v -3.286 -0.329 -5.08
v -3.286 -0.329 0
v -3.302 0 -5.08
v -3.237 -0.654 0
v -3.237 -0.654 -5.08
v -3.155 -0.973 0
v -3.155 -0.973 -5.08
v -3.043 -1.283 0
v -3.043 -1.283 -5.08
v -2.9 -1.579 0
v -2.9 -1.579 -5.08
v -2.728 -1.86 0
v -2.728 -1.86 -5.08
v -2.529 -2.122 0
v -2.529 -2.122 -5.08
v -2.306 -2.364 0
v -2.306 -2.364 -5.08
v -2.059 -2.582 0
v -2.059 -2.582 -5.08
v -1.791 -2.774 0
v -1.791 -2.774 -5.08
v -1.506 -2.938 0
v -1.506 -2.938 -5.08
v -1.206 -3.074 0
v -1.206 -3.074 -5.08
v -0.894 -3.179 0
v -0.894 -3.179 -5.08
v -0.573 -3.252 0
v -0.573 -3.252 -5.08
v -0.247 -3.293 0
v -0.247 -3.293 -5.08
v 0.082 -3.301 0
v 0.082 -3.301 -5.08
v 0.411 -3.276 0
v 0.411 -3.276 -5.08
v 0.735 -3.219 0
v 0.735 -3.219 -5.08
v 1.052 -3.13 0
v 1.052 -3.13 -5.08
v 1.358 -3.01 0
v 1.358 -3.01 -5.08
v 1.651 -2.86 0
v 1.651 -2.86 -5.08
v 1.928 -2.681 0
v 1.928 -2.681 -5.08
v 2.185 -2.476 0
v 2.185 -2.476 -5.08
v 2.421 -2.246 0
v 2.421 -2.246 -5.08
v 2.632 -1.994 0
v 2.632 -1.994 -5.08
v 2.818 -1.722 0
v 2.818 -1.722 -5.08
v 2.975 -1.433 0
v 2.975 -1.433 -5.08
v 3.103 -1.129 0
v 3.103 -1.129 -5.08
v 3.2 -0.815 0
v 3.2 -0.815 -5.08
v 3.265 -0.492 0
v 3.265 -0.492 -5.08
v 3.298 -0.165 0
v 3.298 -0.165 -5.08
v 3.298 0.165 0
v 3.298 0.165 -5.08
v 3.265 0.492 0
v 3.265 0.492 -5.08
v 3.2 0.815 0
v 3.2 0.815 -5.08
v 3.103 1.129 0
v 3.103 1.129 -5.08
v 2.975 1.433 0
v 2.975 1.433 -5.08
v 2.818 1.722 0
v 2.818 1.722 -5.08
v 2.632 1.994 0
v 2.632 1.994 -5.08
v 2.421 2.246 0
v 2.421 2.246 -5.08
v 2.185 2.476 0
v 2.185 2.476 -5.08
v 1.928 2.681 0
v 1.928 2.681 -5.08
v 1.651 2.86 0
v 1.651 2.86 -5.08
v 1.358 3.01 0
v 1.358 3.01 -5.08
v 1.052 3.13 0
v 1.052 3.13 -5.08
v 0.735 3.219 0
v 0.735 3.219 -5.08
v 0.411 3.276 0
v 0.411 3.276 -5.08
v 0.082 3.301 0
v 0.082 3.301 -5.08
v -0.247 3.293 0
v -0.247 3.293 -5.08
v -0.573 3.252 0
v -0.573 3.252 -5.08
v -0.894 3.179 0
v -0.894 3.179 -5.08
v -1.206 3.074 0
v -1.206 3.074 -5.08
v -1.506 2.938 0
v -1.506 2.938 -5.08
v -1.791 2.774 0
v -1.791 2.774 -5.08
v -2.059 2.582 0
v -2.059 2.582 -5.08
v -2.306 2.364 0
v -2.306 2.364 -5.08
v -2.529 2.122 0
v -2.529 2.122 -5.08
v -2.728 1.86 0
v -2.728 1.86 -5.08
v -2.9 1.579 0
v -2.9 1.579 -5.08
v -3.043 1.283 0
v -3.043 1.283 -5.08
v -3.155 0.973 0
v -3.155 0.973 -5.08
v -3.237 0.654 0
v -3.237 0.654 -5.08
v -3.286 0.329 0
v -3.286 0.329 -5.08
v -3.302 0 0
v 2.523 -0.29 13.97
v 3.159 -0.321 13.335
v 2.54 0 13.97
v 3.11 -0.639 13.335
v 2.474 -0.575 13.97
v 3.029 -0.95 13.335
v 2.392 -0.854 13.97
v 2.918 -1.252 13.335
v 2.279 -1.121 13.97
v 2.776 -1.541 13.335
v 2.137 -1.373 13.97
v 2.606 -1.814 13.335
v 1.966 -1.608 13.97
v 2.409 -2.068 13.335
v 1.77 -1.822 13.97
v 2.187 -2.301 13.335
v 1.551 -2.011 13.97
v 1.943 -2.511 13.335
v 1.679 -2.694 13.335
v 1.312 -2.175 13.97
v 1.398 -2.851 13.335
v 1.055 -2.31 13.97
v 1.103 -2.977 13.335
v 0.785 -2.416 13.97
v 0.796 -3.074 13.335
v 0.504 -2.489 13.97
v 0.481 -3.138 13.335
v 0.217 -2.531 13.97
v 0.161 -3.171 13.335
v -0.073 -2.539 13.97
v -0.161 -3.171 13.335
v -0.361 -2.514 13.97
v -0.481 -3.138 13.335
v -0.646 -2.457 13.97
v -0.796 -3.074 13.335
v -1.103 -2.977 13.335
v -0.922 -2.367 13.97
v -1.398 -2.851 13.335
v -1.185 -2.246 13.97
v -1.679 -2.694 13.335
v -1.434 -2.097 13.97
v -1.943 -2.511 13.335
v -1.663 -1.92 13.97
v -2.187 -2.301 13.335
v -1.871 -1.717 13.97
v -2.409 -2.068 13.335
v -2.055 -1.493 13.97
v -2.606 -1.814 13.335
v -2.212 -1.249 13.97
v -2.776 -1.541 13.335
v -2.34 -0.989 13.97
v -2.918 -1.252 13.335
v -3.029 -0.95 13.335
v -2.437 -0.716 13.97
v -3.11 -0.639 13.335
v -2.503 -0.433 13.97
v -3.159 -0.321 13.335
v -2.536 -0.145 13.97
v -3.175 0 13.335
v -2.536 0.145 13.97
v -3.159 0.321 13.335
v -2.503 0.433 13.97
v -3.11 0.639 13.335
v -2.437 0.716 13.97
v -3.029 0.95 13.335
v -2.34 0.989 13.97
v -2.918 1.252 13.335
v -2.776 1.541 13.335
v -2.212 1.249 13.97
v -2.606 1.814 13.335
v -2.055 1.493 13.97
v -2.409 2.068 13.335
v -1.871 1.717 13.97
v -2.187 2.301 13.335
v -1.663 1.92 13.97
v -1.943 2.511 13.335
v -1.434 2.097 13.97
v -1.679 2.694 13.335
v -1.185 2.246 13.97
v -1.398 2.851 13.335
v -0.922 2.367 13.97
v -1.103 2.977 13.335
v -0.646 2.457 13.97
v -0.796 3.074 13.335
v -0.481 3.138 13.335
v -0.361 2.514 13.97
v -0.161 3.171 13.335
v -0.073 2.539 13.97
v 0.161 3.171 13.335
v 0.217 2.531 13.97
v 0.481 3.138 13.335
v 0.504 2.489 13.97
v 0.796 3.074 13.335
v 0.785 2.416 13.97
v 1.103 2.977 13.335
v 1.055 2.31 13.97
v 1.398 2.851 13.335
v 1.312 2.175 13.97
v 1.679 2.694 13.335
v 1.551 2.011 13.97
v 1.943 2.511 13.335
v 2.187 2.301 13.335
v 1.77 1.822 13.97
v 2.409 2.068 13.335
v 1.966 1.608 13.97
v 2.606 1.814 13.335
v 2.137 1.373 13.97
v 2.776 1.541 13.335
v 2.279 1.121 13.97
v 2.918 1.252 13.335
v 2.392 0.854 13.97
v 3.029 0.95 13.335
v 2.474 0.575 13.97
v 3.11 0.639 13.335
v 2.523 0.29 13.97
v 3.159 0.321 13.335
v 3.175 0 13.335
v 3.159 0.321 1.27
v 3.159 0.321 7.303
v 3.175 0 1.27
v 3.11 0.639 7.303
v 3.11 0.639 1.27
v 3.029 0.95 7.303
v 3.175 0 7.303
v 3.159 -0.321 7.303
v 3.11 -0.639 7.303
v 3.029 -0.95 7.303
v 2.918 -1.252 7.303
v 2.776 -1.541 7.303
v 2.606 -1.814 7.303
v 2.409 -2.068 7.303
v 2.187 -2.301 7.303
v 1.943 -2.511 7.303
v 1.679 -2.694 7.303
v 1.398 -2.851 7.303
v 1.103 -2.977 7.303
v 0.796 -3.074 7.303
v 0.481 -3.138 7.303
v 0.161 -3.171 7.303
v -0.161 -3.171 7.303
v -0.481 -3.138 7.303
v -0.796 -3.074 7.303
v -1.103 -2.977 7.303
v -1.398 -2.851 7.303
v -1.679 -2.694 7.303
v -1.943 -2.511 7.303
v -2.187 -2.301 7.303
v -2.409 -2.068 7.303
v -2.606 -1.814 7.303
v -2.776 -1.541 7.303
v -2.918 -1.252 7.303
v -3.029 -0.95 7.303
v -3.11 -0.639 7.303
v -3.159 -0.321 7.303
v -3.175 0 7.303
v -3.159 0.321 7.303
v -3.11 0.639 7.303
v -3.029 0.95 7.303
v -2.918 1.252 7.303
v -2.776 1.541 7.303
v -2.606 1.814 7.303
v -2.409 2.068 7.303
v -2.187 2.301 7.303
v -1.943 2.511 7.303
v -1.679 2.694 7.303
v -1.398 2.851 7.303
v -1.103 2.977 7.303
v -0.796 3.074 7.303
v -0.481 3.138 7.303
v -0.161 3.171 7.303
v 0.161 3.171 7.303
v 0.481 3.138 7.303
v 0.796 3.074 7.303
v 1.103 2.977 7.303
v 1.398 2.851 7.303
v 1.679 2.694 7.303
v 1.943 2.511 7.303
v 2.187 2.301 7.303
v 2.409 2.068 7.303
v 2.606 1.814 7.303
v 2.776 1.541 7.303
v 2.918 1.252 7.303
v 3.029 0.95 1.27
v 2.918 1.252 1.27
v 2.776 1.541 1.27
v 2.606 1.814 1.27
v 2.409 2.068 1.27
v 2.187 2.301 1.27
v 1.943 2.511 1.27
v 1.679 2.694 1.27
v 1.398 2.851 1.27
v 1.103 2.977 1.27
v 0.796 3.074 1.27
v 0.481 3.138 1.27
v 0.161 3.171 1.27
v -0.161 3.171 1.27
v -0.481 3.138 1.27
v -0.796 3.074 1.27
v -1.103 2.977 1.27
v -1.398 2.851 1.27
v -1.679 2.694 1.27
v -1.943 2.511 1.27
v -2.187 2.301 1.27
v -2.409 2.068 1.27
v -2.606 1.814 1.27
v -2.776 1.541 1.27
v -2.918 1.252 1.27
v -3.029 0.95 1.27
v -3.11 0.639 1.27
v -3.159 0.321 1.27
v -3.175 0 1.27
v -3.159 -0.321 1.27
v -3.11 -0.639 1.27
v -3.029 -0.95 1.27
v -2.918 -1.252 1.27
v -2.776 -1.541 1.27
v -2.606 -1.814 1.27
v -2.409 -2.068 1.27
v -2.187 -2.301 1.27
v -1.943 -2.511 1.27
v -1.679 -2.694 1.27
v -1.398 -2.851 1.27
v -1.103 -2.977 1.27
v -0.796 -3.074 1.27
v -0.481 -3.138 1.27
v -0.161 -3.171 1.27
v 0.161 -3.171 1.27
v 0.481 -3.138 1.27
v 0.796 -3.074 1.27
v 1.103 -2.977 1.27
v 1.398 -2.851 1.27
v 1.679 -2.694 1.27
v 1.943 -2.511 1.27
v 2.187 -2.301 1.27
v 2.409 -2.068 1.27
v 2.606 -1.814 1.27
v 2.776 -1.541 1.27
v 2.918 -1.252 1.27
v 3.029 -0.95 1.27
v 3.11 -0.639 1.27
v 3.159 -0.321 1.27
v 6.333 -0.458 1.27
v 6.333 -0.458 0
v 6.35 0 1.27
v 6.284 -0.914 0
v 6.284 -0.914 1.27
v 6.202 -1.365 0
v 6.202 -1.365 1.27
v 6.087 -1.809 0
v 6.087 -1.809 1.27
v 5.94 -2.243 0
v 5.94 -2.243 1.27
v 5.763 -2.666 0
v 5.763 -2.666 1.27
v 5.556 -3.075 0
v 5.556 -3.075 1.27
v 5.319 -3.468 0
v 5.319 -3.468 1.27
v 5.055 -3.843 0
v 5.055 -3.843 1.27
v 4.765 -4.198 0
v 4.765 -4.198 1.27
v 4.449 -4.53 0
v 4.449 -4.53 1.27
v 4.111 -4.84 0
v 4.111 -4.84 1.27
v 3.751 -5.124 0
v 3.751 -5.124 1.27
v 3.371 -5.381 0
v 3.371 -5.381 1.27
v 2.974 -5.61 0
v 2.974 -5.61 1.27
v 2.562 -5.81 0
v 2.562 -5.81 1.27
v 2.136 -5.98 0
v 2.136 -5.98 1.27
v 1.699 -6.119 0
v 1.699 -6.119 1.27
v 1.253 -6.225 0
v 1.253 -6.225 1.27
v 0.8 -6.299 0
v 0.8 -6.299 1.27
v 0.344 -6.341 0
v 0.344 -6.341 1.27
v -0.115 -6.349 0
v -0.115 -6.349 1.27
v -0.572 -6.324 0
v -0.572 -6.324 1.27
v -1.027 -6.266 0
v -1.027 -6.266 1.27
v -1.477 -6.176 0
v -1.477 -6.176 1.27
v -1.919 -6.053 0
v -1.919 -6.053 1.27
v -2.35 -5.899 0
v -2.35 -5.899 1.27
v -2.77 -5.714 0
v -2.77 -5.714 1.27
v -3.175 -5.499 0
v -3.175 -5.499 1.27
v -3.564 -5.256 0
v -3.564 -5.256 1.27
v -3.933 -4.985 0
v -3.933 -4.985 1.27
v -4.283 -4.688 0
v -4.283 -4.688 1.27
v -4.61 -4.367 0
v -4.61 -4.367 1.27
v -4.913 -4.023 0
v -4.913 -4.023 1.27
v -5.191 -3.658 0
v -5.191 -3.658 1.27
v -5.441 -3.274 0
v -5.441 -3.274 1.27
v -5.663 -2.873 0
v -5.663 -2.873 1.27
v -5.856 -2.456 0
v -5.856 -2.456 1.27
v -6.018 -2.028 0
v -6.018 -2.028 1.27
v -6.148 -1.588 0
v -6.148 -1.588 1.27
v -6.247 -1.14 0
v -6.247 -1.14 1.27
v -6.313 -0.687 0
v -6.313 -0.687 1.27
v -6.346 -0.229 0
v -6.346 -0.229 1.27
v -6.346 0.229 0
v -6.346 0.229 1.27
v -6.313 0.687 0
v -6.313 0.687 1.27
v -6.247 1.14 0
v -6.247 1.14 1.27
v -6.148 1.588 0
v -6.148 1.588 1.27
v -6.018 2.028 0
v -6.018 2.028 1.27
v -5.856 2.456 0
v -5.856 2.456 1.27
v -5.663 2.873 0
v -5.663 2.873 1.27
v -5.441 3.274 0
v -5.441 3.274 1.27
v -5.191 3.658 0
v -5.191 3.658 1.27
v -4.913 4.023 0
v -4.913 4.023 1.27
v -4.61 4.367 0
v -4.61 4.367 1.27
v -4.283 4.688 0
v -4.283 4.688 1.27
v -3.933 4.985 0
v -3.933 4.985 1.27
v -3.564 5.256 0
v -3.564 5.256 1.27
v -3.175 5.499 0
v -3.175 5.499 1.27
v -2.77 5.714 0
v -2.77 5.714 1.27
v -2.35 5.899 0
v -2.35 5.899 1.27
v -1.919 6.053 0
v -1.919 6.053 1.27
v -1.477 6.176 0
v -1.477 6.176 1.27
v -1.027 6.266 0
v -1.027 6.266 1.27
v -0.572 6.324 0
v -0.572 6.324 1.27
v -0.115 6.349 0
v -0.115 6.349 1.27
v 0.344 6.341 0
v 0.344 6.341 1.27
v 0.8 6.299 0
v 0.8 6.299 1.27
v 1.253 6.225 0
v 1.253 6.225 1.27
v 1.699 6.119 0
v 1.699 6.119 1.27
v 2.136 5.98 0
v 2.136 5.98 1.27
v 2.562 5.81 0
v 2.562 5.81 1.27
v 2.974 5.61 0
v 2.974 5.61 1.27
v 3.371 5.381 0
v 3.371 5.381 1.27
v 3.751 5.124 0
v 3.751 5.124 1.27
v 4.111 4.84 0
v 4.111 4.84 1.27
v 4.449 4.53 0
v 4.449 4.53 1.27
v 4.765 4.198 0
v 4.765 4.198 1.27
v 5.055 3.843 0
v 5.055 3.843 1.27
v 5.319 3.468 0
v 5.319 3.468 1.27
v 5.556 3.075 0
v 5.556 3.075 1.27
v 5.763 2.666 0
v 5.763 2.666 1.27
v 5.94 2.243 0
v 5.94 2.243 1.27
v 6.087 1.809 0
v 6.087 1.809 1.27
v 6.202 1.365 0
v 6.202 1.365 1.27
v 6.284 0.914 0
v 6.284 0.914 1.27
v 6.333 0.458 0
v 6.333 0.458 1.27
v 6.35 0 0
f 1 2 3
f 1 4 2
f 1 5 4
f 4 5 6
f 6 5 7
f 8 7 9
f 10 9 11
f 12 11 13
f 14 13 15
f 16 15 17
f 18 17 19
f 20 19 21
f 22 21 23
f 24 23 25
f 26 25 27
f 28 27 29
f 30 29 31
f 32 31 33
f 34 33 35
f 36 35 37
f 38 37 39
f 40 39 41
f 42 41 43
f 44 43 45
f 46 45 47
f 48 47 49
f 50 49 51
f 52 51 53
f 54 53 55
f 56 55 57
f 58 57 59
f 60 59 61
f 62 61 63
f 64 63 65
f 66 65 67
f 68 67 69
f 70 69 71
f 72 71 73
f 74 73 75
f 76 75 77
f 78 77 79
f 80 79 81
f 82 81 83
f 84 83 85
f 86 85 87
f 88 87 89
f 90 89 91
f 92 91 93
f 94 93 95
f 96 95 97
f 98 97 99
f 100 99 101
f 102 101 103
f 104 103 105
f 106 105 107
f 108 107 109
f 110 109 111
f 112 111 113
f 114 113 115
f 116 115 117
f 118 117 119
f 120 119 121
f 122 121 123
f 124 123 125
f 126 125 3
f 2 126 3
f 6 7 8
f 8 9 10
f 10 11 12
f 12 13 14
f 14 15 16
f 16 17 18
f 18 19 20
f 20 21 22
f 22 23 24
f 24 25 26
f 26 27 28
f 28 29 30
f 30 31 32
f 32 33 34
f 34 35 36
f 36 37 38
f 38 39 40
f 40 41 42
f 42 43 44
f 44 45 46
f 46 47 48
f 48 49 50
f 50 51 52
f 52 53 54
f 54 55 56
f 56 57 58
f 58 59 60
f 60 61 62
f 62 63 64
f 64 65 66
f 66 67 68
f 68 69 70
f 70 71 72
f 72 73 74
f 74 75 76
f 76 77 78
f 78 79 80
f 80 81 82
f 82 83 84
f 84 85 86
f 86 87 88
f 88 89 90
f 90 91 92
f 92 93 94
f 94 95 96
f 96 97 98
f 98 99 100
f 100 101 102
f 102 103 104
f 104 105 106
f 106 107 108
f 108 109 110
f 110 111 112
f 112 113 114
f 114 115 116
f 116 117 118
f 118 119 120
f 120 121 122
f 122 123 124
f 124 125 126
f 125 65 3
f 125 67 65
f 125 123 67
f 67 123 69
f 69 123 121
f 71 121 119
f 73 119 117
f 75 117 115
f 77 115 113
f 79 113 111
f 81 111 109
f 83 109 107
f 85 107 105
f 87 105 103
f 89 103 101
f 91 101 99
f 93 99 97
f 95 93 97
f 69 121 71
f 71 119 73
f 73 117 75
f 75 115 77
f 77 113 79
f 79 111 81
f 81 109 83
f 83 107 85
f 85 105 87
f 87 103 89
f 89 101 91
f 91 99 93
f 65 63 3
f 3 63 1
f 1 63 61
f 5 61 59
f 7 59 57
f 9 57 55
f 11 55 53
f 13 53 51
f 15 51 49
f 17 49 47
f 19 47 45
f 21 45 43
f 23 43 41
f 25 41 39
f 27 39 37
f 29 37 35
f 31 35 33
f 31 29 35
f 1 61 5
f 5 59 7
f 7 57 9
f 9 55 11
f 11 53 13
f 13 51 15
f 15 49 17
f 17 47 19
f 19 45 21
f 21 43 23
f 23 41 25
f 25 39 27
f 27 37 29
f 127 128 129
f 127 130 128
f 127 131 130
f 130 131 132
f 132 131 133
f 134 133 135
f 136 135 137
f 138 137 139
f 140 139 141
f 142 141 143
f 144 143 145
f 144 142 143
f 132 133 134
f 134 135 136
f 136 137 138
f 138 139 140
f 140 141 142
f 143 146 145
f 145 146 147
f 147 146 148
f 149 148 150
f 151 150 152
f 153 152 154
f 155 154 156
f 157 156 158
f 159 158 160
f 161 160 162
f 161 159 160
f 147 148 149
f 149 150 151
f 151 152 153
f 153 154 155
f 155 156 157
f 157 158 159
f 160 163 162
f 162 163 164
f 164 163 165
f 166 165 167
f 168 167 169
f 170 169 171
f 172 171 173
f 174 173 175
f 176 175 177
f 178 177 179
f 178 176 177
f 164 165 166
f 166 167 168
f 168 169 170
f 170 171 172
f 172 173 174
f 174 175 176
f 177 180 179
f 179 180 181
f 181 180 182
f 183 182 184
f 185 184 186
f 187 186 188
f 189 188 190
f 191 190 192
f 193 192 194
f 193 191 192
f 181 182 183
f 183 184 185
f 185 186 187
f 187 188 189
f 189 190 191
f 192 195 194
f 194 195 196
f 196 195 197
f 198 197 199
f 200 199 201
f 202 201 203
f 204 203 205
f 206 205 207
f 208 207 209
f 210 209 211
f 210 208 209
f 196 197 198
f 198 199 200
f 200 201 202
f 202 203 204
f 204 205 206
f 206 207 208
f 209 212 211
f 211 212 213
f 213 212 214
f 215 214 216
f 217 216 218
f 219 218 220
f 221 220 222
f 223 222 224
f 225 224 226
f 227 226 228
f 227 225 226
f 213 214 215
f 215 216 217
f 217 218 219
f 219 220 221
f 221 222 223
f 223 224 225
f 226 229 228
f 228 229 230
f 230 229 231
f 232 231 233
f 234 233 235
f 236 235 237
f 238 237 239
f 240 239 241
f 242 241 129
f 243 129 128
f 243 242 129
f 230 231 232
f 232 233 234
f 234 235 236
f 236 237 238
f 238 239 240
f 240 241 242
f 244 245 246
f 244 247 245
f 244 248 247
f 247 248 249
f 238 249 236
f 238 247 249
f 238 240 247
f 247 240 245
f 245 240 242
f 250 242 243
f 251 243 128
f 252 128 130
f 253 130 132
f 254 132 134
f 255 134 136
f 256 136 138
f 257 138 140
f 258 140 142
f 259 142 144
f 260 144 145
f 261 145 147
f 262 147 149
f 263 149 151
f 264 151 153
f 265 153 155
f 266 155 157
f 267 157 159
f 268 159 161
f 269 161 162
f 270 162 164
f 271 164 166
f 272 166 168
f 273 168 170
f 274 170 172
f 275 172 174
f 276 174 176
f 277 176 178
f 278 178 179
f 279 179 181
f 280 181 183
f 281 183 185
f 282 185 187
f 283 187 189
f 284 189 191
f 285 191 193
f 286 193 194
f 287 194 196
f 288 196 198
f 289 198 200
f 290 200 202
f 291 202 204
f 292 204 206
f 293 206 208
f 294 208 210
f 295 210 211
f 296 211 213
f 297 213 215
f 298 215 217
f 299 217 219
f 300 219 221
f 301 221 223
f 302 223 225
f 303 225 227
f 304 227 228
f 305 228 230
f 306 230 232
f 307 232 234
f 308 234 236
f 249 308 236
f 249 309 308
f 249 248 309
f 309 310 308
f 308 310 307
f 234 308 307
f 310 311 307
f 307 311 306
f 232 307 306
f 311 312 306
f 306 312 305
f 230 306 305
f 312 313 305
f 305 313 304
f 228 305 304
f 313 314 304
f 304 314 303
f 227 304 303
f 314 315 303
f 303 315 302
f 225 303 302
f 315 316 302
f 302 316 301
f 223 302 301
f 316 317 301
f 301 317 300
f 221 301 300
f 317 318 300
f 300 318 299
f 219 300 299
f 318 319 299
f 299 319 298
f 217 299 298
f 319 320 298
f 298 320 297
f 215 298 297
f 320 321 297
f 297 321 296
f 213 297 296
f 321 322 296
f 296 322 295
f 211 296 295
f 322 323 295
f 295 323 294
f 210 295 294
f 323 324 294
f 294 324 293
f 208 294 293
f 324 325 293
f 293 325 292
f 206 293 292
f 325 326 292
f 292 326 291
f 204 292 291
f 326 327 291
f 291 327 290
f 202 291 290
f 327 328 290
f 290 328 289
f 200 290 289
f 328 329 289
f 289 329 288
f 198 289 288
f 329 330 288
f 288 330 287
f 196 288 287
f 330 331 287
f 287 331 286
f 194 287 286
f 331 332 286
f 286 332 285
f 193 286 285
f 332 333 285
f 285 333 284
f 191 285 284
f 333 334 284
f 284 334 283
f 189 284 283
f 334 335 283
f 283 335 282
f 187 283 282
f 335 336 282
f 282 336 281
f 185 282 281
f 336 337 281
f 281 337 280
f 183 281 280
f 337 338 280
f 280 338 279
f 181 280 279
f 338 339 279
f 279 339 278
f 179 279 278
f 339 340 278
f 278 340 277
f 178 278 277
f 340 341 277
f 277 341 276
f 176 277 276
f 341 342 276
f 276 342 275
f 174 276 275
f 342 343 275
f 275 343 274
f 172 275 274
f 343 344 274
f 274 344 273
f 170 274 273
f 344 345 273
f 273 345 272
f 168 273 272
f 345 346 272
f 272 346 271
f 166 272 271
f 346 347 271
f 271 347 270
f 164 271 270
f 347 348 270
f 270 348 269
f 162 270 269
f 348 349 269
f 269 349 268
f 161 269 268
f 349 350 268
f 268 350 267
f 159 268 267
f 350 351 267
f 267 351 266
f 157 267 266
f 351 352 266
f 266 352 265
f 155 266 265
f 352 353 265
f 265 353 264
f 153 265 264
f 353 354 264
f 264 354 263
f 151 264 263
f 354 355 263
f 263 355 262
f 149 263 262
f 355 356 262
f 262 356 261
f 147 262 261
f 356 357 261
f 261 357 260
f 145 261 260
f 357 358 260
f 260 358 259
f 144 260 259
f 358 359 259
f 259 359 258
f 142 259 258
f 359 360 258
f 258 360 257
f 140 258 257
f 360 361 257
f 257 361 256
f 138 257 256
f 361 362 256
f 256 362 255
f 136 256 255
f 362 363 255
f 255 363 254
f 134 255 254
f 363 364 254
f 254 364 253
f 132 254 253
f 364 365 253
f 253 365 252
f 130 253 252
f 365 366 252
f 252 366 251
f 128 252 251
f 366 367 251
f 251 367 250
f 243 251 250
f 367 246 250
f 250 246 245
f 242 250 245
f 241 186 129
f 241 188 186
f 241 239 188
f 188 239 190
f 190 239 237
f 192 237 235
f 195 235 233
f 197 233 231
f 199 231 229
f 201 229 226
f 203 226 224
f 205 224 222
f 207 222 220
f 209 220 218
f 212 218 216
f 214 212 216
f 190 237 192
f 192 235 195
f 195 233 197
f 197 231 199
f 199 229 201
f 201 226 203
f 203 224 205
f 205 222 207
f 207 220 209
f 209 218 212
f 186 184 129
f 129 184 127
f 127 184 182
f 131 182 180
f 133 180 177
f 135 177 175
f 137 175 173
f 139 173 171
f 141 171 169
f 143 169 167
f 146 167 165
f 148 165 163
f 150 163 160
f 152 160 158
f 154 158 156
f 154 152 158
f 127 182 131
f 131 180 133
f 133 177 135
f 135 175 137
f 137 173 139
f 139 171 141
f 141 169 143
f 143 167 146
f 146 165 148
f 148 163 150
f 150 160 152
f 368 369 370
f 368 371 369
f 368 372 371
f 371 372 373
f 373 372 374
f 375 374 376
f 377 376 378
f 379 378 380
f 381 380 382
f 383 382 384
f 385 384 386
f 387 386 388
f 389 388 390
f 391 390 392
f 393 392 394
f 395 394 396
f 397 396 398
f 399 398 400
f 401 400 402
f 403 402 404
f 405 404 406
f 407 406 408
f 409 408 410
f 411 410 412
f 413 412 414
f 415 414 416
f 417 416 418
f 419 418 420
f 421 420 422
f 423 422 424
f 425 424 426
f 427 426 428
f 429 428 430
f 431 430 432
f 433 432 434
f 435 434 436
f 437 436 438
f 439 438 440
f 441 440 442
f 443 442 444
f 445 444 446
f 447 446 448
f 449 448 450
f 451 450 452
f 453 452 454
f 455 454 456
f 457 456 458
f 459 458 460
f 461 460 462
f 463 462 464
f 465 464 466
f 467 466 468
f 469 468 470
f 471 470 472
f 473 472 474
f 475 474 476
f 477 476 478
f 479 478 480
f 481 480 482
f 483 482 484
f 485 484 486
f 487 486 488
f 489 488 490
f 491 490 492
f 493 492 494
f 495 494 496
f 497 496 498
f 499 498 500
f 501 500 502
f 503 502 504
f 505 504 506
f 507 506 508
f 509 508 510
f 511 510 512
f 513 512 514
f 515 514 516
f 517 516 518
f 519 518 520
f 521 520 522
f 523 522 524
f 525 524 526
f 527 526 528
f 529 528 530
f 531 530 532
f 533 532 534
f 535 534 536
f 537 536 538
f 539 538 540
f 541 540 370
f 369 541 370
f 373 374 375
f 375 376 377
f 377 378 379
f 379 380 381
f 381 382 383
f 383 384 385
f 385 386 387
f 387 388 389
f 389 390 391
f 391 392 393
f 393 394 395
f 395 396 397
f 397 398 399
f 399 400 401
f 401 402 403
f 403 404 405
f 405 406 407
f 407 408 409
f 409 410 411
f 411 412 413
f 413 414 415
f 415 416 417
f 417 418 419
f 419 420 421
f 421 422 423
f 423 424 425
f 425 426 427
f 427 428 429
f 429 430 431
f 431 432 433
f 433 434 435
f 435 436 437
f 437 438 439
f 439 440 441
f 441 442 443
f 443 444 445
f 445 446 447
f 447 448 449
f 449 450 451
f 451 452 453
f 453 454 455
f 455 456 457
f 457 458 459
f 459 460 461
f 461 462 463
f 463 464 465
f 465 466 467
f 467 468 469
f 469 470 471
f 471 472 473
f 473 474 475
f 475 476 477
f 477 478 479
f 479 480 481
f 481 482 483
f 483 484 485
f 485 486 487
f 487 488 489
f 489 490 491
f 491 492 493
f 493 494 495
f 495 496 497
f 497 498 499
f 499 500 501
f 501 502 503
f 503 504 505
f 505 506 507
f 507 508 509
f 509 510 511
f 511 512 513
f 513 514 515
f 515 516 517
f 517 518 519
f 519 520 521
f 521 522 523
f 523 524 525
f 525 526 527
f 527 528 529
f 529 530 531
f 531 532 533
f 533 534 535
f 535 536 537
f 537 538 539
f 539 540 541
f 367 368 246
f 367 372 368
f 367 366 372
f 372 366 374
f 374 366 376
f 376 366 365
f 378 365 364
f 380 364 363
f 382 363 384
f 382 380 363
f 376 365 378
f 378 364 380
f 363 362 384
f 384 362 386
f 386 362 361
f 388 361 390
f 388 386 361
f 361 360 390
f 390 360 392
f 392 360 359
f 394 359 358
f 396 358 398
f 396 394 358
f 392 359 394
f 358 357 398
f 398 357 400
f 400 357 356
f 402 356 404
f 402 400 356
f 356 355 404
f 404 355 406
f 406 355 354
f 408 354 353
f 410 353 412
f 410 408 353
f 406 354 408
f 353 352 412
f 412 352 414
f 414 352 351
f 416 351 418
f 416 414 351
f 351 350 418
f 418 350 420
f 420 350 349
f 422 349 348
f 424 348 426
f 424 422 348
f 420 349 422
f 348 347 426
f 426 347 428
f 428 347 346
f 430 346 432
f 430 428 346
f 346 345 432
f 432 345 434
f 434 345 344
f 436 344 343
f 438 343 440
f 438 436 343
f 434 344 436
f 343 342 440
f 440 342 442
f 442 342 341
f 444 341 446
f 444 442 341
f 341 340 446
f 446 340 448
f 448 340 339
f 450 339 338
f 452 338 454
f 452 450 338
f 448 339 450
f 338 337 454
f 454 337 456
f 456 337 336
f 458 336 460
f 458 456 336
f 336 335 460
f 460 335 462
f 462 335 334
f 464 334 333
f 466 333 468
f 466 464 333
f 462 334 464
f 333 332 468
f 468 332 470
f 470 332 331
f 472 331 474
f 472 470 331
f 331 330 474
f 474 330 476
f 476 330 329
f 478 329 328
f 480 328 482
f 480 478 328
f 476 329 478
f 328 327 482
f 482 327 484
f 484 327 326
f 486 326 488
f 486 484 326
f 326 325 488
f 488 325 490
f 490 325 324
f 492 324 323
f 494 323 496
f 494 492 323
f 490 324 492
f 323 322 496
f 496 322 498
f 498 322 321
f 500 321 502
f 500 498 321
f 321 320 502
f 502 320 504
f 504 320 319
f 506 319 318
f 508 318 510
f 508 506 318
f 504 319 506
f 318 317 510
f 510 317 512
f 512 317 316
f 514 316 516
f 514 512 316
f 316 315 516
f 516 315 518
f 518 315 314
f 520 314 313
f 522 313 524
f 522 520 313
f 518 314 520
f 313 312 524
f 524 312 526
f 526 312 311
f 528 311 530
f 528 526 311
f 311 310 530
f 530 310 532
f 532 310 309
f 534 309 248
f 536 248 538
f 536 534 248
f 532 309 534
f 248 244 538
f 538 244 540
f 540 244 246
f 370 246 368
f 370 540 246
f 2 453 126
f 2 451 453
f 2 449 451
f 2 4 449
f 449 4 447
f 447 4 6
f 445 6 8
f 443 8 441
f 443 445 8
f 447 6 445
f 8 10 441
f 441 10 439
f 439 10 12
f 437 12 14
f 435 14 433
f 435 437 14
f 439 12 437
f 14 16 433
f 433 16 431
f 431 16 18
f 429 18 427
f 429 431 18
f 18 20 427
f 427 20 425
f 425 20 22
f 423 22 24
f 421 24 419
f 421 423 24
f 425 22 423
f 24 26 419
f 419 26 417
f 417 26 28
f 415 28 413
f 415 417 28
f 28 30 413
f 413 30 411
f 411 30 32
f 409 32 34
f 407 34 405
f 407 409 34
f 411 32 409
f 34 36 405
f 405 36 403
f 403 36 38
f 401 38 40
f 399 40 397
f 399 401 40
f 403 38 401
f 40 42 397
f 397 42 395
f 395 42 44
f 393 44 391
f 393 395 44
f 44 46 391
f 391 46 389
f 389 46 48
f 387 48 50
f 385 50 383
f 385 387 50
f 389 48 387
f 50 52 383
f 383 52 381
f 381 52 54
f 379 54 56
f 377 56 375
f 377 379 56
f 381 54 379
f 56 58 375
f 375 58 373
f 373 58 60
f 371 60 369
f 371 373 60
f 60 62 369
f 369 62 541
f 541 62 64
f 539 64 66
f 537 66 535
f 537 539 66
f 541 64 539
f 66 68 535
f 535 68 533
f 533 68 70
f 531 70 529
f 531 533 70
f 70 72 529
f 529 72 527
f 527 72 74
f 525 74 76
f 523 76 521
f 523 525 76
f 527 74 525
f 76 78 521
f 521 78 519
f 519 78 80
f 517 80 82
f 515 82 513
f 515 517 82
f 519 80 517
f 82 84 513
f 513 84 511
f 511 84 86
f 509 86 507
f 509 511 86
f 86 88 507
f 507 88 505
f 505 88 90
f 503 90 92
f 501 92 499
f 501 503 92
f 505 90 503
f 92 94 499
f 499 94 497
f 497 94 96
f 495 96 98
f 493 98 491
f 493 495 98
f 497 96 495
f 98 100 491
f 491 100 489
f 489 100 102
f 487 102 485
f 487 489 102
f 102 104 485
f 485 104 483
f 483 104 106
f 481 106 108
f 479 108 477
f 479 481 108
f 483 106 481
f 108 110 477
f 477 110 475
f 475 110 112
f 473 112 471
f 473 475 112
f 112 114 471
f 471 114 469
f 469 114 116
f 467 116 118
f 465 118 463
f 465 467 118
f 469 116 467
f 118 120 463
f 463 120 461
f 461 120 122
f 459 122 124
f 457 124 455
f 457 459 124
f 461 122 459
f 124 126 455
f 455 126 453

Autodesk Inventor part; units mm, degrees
ref_plane "YZ Plane" through (0, 0, 0) normal (1, 0, 0) x (0, 1, 0)
ref_plane "XZ Plane" through (0, 0, 0) normal (0, 1, 0) x (-1, 0, 0)
ref_plane "XY Plane" through (0, 0, 0) normal (0, 0, 1) x (1, 0, 0)
sketch "Sketch1" plane through (0, 0, 0) normal (0, 0, 1) x (1, 0, 0)
  circle A0 centre (0, 0) radius 6.35
  dimension "d0" = 12.7
extrude "Extrusion1" add sketch "Sketch1" along normal blind 1.27
sketch "Sketch2" plane through (0, 0, 1.27) normal (0, 0, 1) x (1, 0, 0)
  circle A0 centre (0, 0) radius 6.35 projected
  circle A1 centre (0, 0) radius 3.175
  dimension "d3" = 6.35
extrude "Extrusion2" add sketch "Sketch2" along normal blind 12.7 contours A1
chamfer "Chamfer1" distance 0.635 angle 45 1 edges at (-3.175, 0, 13.97)
thread "Thread1" size "1/4-28 UNF" class "1A" standard "ANSI Unified Screw Threads" full length
sketch "Sketch3" plane through (0, 0, 0) normal (0, 0, -1) x (-1, 0, 0)
  circle A0 centre (0, 0) radius 6.35 projected
  circle A1 centre (0, 0) radius 3.302
  dimension "d10" = 6.604
extrude "Extrusion3" add sketch "Sketch3" along normal blind 5.08 contours A1
properties part number "Breaker Post" material "Steel, Mild"
